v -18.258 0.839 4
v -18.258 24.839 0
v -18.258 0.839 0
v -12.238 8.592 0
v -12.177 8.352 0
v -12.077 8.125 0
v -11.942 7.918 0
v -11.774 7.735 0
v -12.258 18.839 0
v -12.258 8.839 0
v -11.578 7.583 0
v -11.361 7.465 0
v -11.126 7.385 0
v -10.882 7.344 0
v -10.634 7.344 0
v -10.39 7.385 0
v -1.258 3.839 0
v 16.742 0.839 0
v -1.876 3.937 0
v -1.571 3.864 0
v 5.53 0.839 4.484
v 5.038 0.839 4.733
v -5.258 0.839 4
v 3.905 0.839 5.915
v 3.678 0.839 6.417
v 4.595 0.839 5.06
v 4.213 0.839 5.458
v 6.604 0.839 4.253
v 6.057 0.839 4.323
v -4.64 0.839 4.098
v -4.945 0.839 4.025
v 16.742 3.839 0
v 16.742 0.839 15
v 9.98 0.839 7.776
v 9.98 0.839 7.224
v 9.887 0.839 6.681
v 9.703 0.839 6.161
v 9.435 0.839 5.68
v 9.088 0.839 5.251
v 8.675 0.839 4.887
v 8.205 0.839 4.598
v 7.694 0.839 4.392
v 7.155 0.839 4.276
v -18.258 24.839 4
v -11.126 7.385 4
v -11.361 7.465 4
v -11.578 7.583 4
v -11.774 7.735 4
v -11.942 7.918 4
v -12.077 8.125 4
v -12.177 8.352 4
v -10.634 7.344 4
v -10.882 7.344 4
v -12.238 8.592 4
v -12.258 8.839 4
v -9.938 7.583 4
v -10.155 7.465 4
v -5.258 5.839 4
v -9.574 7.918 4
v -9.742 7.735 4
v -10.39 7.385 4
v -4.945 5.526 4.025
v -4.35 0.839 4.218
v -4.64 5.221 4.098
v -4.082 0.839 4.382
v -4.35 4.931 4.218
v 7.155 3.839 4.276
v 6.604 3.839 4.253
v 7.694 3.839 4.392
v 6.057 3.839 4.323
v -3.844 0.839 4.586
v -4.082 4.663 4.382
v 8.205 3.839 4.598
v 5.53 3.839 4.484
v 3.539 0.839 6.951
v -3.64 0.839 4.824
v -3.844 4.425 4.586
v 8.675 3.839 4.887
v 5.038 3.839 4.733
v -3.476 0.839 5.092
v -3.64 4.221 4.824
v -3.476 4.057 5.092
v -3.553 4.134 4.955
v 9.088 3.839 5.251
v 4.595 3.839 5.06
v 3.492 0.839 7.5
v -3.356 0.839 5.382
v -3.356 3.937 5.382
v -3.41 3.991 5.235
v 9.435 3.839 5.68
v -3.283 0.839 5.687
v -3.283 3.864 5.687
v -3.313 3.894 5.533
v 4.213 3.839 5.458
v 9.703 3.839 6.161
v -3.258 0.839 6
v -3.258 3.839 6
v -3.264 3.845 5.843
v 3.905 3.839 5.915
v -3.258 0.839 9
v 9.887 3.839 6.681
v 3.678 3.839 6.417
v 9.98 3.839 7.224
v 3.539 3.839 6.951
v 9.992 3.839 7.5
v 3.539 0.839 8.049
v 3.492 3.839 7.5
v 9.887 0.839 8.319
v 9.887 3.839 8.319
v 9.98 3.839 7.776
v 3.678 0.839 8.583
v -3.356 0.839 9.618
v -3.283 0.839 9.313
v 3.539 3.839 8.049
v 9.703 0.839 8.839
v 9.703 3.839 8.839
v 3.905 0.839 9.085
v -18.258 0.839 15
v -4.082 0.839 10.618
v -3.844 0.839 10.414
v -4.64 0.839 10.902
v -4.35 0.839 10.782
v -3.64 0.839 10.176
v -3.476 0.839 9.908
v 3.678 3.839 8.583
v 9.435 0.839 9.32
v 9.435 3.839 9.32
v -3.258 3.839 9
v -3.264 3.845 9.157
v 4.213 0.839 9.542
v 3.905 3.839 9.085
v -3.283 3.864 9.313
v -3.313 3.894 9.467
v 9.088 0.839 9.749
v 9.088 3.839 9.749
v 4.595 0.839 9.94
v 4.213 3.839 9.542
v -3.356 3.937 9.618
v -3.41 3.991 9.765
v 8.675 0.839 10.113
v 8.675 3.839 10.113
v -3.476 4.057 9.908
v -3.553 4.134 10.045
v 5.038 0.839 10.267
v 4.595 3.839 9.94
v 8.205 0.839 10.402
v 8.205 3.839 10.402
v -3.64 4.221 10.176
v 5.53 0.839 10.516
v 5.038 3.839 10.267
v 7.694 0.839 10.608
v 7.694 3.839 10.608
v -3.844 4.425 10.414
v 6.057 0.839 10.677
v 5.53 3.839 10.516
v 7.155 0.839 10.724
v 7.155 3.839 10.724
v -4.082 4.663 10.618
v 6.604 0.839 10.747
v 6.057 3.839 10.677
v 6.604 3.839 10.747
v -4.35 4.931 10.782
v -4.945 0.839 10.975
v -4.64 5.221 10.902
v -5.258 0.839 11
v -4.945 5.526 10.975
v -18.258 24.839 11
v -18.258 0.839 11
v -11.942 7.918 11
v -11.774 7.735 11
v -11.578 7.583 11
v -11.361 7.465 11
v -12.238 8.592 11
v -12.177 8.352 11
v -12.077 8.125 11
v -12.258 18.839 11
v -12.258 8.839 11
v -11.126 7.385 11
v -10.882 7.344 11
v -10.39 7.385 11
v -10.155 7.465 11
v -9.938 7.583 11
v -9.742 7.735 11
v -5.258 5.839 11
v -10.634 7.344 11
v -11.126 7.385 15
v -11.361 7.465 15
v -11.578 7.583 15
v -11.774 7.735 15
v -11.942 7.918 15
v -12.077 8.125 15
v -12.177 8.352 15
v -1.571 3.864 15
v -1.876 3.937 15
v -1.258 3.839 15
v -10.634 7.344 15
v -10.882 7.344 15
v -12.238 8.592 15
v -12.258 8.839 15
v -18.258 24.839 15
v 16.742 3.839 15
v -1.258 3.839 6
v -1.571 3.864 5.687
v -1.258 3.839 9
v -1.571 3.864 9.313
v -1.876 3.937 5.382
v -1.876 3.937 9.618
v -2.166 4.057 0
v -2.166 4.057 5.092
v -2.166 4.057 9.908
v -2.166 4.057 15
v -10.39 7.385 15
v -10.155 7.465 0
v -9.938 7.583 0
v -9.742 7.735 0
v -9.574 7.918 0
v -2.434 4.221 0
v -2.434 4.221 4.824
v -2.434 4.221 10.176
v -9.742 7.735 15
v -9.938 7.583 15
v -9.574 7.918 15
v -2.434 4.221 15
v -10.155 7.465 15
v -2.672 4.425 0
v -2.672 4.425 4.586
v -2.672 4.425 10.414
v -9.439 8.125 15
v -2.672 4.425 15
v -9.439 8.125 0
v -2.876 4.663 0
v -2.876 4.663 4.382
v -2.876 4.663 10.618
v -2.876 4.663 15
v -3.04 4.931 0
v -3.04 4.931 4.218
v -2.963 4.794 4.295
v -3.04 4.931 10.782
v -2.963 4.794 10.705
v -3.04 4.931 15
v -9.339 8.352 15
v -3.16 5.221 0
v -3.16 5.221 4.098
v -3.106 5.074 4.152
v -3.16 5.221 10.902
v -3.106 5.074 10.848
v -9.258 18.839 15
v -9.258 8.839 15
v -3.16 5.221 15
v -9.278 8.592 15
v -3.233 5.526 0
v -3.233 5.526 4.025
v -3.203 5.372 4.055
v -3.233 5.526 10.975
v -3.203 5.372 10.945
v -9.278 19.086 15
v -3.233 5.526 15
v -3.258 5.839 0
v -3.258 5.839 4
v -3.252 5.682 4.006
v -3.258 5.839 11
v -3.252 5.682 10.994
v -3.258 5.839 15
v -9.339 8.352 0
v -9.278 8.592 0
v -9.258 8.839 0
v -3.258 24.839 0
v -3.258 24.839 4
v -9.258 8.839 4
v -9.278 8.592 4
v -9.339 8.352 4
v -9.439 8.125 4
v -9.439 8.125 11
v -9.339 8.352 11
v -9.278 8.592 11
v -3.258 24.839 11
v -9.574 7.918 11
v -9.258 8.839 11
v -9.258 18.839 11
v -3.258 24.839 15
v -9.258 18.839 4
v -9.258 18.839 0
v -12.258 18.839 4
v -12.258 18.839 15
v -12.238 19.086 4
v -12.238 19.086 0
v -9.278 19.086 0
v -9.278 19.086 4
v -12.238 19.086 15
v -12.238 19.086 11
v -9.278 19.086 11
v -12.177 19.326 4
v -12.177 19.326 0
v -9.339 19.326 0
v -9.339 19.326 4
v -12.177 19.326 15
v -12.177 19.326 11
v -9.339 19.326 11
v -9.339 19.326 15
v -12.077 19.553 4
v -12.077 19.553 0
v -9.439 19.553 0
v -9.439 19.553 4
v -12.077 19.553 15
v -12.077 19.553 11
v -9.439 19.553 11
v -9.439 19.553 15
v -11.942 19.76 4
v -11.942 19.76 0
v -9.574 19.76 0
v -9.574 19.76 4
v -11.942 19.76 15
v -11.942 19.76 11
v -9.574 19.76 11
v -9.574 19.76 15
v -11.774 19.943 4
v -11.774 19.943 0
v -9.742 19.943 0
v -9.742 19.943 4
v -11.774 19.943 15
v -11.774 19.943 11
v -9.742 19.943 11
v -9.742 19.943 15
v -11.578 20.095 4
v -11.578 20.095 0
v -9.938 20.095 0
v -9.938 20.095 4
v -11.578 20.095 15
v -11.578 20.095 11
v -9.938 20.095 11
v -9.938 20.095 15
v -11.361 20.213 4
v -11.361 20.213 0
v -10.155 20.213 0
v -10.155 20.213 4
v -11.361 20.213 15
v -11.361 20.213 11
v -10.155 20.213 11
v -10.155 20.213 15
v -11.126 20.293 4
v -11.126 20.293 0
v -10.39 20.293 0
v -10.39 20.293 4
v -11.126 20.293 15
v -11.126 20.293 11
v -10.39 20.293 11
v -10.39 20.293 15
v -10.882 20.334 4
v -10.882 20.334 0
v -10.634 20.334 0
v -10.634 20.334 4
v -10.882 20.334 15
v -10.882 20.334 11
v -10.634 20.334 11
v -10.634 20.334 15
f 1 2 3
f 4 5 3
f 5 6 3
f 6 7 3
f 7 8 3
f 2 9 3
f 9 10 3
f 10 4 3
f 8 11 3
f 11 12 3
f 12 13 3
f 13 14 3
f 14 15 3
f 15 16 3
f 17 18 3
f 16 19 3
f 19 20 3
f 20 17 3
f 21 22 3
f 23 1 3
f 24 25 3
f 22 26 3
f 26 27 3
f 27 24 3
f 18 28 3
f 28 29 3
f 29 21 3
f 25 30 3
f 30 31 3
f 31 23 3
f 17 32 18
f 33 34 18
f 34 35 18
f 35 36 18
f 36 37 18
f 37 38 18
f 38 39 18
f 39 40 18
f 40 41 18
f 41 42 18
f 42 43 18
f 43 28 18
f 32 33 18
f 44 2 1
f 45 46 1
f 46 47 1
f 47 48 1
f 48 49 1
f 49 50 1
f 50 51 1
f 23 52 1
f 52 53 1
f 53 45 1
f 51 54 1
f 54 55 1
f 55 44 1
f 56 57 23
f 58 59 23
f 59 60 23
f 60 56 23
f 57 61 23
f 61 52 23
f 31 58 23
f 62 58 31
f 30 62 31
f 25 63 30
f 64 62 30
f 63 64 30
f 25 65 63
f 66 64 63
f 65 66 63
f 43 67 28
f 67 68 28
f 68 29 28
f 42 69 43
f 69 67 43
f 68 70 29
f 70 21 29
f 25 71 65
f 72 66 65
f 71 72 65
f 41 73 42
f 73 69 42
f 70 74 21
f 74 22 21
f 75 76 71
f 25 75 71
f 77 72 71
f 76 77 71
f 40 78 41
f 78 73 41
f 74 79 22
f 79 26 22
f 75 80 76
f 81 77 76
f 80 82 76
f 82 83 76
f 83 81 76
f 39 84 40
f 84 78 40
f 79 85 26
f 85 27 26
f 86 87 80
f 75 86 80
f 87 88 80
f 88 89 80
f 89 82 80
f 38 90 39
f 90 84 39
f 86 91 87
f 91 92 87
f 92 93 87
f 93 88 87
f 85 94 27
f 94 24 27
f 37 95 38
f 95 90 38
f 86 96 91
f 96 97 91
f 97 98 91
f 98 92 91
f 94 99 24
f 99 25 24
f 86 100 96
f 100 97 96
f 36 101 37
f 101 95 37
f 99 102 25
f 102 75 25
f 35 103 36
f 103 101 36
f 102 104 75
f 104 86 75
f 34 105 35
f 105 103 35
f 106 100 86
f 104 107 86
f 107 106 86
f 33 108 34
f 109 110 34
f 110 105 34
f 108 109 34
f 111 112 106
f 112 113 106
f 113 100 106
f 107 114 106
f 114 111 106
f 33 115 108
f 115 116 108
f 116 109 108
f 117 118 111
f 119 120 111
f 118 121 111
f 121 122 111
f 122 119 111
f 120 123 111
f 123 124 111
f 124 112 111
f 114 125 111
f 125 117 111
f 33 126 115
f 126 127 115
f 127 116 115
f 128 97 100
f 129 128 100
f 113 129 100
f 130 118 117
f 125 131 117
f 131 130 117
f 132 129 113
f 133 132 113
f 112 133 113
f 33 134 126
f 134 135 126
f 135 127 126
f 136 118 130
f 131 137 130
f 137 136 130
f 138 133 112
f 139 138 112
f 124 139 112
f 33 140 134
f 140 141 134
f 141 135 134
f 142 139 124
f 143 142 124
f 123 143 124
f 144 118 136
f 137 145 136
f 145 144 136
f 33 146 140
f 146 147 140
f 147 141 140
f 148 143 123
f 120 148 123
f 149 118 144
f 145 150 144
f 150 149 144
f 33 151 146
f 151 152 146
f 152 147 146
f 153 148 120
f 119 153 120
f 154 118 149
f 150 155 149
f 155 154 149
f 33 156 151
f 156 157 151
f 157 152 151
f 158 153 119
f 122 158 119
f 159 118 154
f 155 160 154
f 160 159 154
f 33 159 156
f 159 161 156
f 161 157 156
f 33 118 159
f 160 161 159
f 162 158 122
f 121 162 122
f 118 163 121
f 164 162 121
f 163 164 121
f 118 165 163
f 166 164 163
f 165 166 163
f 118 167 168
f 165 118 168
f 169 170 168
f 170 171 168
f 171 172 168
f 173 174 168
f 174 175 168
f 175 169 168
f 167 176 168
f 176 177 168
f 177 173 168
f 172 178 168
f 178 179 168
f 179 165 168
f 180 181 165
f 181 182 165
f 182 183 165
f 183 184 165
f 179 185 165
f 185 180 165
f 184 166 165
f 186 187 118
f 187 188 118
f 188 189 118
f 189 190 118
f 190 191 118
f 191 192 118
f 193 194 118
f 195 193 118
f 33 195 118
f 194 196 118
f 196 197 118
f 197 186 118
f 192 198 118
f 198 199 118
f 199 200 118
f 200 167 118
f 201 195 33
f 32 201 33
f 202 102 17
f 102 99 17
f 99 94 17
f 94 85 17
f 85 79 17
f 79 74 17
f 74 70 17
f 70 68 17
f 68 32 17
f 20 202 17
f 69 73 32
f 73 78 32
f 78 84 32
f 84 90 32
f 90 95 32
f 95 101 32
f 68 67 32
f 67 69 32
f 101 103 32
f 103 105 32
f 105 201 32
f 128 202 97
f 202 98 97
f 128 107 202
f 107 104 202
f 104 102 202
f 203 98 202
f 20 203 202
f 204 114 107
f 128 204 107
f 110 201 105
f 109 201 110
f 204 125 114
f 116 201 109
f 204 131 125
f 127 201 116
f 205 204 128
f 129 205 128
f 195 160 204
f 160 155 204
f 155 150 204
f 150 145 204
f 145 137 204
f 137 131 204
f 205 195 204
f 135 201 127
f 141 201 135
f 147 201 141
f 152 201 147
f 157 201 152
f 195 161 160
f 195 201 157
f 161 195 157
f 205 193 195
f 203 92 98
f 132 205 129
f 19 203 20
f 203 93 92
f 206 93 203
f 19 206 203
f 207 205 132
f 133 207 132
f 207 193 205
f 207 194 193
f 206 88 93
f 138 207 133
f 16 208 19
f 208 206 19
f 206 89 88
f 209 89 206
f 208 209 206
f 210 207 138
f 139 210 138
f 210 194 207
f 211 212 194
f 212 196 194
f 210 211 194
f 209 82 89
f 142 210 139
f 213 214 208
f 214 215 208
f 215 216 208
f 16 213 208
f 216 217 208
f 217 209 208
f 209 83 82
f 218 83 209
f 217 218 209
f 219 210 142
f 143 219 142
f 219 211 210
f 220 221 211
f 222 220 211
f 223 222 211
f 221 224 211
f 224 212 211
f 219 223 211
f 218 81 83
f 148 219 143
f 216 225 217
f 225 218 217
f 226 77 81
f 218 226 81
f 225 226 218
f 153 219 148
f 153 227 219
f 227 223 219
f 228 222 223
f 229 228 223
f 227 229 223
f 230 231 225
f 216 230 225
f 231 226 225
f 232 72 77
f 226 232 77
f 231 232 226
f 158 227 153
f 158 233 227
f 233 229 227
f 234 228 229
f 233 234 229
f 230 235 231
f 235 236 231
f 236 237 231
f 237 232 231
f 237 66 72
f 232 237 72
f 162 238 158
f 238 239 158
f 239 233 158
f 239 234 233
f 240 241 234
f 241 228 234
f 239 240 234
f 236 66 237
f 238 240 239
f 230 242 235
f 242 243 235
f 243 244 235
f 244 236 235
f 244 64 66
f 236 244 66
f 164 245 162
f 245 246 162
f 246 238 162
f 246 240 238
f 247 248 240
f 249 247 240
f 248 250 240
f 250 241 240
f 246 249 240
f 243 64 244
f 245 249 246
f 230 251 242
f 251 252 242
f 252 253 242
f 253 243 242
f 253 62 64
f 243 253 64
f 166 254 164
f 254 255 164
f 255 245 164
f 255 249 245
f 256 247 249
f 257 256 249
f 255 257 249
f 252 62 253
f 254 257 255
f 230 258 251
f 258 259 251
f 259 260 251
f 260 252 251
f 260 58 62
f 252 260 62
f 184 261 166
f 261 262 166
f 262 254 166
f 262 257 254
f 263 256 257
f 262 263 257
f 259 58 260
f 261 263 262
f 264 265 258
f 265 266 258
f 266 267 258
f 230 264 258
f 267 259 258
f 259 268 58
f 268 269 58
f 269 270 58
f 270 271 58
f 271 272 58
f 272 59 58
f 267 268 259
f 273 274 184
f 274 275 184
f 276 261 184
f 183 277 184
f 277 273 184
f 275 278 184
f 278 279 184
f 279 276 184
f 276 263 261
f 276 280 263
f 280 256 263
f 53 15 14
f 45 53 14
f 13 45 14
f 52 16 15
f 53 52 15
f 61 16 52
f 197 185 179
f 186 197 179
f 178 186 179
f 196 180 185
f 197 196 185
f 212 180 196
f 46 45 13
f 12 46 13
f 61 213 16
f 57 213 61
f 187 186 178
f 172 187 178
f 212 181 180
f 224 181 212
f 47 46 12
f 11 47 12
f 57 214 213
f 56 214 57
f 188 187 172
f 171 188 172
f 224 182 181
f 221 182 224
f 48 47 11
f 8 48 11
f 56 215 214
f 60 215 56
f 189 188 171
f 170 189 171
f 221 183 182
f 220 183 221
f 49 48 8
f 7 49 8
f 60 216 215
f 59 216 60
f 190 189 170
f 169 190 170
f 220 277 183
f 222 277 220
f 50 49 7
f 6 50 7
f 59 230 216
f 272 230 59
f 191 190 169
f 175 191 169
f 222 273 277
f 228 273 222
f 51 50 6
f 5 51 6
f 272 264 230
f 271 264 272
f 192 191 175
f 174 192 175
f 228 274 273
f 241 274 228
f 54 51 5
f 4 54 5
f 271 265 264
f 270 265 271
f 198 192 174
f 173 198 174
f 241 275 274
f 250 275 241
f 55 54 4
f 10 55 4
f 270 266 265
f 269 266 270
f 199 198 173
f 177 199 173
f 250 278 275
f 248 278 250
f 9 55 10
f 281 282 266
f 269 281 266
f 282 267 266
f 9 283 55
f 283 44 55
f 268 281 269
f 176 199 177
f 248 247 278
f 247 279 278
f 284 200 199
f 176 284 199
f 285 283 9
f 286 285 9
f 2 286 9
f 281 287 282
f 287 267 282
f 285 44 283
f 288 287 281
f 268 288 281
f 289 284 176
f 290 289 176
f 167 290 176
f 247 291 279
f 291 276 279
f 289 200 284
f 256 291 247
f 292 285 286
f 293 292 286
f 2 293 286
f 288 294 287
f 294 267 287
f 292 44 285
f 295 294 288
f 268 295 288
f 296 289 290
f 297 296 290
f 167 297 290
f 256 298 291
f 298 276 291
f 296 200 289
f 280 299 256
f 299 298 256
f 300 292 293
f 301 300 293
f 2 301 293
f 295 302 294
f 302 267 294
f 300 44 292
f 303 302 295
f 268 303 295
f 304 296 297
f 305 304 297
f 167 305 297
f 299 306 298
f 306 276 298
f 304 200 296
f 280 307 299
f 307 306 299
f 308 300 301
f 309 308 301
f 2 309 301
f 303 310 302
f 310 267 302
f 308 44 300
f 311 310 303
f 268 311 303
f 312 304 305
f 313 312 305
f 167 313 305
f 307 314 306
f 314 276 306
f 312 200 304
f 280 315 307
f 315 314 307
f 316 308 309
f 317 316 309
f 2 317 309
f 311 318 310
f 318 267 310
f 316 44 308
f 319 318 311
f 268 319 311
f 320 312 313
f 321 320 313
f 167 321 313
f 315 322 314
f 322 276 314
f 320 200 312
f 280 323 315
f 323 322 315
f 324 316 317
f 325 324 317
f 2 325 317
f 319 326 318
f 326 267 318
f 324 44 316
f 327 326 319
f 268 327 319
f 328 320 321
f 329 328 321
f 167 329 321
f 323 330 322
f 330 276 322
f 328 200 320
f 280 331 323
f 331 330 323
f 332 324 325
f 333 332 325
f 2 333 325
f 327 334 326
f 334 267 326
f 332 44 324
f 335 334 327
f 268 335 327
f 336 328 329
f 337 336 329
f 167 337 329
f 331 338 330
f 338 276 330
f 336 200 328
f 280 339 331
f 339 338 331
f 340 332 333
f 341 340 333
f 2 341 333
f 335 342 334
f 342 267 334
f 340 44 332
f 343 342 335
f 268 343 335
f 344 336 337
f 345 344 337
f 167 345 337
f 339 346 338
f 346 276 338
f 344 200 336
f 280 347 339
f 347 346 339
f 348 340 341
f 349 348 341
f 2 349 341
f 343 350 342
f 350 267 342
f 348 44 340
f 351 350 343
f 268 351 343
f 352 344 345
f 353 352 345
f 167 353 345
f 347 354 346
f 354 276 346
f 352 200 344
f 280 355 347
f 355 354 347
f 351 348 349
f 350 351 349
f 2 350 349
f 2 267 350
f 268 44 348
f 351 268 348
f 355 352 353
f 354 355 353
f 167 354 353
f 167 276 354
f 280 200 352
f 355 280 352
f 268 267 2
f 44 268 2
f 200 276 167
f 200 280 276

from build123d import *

# Parameters (mm, degrees)
EXTRUDE_1_DEPTH     = 15
SKETCH_2_R          = 3.25
SKETCH_2_W          = 10
SKETCH_2_H          = 7
CUT_EXTRUDE_1_DEPTH = 37
SKETCH_3_W          = 7
SKETCH_3_H          = 25
CUT_EXTRUDE_2_DEPTH = 37
FILLET_1_R          = 2
FILLET_2_R          = 2


with BuildPart() as part:
    # 草图1 → 凸台-拉伸1 (new body)
    with BuildSketch(Plane.XY):
        Polygon((-3.257989732, 3.83894099), (16.742010268, 3.83894099), (16.742010268, 0.83894099), (-18.257989732, 0.83894099), (-18.257989732, 24.83894099), (-3.257989732, 24.83894099), align=None)
        with BuildLine():
            Line((-12.257989732, 18.83894099), (-12.257989732, 8.83894099))
            ThreePointArc((-12.257989732, 8.83894099), (-10.757989732, 7.33894099), (-9.257989732, 8.83894099))
            Line((-9.257989732, 8.83894099), (-9.257989732, 18.83894099))
            ThreePointArc((-9.257989732, 18.83894099), (-10.757989732, 20.33894099), (-12.257989732, 18.83894099))
        make_face(mode=Mode.SUBTRACT)
    extrude(amount=EXTRUDE_1_DEPTH)

    # 草图2 → 切除-拉伸1 (cut)
    with BuildSketch(Plane(origin=(0, 24.83894099, 0), x_dir=(1, 0, 0), z_dir=(0, 1, 0))):
        with Locations(Location((6.742010268, -7.5, 0), (0, 0, 180))):
            Circle(SKETCH_2_R)
        with Locations((-13.257989732, -7.5)):
            Rectangle(SKETCH_2_W, SKETCH_2_H)
    extrude(amount=-CUT_EXTRUDE_1_DEPTH, mode=Mode.SUBTRACT)

    # 草图3 → 切除-拉伸2 (cut)
    with BuildSketch(Plane(origin=(-3.257989732, 0, 0), x_dir=(0, 0, -1), z_dir=(1, 0, 0))):
        with Locations((-7.5, 12.33894099)):
            Rectangle(SKETCH_3_W, SKETCH_3_H)
    extrude(amount=-CUT_EXTRUDE_2_DEPTH, mode=Mode.SUBTRACT)

    # 圆角1
    fillet_1_edges = [part.edges().sort_by_distance(p)[0] for p in [
        (-3.257989732, 2.33894099, 11),
        (-3.257989732, 2.33894099, 4),
    ]]
    fillet(fillet_1_edges, radius=FILLET_1_R)

    # 圆角2
    fillet_2_edges = [part.edges().sort_by_distance(p)[0] for p in [
        (-3.257989732, 3.83894099, 2),
        (-3.257989732, 3.83894099, 13),
        (-4.257989732, 3.83894099, 11),
        (-4.257989732, 3.83894099, 4),
    ]]
    fillet(fillet_2_edges, radius=FILLET_2_R - 0.0001)  # a hair under: the kernel refuses the full size


solid = part.part
